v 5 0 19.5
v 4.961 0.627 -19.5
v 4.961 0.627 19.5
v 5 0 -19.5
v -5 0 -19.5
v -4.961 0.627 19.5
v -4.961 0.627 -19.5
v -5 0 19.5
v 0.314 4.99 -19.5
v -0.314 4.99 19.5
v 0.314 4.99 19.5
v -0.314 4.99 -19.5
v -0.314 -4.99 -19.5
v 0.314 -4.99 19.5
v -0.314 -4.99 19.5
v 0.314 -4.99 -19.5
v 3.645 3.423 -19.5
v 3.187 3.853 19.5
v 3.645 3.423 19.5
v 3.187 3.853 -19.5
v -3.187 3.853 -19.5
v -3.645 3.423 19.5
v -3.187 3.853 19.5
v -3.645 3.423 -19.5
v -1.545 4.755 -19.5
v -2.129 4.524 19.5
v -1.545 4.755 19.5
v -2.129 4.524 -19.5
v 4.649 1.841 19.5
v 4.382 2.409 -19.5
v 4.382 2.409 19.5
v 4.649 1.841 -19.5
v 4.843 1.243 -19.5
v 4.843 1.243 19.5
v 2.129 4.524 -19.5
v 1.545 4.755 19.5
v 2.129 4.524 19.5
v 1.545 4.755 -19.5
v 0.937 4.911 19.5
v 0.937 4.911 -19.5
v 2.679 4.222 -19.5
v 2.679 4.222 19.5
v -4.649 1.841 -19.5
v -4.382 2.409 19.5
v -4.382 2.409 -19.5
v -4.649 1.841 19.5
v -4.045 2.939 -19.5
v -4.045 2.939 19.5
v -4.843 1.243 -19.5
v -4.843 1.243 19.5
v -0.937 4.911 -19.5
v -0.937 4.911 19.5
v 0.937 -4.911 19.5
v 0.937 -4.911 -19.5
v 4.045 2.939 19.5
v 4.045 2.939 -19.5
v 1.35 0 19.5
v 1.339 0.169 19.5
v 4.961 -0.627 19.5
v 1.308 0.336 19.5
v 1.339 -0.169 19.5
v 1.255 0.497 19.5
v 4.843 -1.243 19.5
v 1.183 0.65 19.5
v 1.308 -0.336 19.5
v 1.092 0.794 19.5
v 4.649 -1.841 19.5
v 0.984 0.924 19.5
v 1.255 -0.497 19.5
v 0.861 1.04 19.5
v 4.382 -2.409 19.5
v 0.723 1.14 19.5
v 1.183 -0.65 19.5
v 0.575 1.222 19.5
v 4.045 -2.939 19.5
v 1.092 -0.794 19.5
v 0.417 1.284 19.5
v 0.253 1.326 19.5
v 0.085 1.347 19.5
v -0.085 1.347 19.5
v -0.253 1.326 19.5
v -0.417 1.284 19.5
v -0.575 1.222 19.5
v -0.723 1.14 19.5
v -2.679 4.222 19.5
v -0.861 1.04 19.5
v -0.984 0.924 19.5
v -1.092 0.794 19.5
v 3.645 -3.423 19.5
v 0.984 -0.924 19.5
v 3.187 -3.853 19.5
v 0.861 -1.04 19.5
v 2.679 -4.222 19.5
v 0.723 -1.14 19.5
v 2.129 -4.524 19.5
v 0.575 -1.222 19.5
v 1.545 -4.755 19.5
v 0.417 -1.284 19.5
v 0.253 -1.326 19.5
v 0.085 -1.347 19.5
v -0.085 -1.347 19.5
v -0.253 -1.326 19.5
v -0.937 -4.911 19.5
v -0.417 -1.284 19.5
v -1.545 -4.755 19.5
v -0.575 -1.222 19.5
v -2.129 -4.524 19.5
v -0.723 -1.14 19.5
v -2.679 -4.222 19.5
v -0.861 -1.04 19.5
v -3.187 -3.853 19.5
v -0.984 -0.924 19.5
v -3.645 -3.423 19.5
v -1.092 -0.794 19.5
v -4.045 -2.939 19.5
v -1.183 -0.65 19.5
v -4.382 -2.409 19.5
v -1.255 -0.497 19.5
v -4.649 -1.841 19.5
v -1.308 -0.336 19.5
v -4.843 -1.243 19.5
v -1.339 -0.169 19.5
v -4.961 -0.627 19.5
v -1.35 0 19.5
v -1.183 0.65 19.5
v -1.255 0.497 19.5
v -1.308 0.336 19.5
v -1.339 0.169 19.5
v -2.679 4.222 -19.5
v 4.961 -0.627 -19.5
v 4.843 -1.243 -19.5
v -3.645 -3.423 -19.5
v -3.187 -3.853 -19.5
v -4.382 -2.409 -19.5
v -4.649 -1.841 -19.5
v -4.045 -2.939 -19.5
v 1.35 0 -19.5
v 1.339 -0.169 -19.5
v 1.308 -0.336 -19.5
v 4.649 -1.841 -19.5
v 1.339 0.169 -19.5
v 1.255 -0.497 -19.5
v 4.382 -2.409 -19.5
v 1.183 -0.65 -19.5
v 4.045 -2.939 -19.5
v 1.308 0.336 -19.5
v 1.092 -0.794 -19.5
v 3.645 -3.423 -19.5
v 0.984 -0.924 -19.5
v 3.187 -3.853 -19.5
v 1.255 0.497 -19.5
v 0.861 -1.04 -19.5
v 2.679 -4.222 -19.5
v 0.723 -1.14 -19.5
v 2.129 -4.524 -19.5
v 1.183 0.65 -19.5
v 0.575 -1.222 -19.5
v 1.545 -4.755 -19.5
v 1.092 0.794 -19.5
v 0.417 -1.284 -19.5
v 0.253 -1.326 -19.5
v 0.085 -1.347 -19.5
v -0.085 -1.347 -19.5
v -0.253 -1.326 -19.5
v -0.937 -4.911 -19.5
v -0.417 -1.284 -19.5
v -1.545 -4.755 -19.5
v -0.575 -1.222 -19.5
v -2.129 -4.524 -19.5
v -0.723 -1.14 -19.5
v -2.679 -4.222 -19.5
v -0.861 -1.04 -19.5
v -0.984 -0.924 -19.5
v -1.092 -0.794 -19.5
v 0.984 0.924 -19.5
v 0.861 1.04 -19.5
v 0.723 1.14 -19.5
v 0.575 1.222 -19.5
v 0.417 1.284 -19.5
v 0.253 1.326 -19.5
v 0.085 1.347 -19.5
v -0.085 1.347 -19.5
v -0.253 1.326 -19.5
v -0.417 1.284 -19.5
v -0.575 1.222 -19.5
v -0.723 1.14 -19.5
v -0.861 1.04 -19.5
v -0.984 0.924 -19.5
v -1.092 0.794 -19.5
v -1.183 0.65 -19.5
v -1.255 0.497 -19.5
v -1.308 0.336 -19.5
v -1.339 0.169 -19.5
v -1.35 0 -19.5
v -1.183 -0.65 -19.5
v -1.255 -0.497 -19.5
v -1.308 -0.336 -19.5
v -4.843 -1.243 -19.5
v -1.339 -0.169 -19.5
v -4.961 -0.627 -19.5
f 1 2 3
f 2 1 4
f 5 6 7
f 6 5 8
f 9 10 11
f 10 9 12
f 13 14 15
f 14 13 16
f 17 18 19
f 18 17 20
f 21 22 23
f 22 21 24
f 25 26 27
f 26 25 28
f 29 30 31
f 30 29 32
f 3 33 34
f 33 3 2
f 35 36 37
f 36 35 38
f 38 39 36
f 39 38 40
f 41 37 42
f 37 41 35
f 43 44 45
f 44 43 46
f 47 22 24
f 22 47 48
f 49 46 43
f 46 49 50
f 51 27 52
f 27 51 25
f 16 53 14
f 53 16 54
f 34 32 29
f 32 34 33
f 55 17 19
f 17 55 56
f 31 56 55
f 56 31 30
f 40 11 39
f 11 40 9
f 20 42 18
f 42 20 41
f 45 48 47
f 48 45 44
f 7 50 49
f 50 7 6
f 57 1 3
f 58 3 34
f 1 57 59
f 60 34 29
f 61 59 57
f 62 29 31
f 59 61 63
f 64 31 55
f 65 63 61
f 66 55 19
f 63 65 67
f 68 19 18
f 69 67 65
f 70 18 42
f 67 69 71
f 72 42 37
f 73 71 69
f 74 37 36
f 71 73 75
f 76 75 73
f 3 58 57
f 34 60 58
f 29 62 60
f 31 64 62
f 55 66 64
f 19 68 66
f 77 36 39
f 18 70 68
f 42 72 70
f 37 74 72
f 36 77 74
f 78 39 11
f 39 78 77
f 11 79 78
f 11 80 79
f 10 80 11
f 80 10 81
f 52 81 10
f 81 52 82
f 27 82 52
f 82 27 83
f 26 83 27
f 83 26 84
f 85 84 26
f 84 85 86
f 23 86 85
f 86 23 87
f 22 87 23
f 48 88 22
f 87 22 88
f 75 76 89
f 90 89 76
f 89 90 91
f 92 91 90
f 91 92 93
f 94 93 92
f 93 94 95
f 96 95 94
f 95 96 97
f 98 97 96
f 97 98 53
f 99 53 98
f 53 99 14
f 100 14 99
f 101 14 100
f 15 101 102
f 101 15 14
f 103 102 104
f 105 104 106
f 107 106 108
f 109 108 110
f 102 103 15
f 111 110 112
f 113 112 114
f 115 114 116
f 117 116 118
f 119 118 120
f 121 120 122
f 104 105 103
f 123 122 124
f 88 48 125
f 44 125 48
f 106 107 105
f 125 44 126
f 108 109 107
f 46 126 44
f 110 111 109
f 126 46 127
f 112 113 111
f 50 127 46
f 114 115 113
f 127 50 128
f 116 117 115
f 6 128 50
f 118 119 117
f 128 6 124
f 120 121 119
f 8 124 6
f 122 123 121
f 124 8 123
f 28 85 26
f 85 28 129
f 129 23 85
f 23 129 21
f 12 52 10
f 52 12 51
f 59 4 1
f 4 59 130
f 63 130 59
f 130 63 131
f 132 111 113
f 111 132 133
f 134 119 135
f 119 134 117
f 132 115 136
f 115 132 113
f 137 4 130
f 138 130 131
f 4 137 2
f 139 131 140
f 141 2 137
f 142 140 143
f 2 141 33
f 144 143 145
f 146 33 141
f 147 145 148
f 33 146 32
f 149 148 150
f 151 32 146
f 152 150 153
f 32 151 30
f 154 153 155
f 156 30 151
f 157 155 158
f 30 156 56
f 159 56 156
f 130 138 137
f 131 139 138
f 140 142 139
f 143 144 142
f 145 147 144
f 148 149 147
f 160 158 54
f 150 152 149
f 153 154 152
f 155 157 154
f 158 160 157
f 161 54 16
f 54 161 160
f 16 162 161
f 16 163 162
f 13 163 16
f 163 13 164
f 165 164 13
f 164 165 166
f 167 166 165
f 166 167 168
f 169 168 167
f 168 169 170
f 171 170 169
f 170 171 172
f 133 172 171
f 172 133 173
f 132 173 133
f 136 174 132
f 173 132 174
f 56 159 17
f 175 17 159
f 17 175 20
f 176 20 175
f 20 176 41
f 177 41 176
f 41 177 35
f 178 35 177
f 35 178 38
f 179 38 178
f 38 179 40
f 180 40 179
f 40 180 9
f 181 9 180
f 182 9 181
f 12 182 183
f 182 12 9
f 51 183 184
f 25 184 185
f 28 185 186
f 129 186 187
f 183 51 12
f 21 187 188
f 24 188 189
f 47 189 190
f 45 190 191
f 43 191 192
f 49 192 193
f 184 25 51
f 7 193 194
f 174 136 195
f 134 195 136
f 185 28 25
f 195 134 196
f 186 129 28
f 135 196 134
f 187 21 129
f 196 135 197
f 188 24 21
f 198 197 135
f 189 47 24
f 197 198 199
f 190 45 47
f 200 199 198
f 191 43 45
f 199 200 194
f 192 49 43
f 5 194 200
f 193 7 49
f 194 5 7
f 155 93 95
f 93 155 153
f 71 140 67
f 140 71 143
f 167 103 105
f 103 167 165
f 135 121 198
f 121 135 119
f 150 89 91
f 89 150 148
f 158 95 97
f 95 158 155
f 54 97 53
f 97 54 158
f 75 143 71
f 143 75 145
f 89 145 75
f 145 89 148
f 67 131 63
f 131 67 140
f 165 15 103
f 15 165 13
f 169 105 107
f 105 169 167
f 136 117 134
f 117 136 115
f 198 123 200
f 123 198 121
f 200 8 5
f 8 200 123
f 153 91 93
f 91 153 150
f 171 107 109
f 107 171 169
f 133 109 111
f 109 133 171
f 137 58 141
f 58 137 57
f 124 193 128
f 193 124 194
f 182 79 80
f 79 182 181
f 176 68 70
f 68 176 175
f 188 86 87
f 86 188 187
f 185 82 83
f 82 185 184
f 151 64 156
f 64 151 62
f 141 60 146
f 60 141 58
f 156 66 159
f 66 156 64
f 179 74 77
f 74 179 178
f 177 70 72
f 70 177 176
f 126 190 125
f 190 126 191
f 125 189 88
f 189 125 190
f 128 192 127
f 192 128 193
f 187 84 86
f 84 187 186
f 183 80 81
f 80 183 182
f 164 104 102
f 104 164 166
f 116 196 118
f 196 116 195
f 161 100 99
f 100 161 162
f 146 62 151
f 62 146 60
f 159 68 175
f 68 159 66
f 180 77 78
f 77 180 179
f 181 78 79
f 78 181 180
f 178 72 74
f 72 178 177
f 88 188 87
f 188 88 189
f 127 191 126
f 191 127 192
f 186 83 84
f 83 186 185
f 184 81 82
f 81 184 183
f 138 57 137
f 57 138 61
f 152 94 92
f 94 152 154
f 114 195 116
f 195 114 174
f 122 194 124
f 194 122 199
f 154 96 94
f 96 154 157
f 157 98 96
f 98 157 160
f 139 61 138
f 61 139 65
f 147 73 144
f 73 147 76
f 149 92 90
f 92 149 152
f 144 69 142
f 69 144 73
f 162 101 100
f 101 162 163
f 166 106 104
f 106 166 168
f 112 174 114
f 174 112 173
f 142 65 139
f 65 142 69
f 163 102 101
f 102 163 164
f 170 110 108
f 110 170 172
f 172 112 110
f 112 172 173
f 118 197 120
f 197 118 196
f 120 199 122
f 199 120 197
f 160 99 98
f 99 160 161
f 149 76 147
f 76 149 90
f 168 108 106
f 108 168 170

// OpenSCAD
$fn = 50;


difference() {
	union() {
		translate(v = [0, 0, -19.5000000000]) {
			cylinder(h = 39, r = 5.0000000000);
		}
	}
	union() {
		translate(v = [0, 0, -100.0000000000]) {
			cylinder(h = 200, r = 1.3500000000);
		}
	}
}
